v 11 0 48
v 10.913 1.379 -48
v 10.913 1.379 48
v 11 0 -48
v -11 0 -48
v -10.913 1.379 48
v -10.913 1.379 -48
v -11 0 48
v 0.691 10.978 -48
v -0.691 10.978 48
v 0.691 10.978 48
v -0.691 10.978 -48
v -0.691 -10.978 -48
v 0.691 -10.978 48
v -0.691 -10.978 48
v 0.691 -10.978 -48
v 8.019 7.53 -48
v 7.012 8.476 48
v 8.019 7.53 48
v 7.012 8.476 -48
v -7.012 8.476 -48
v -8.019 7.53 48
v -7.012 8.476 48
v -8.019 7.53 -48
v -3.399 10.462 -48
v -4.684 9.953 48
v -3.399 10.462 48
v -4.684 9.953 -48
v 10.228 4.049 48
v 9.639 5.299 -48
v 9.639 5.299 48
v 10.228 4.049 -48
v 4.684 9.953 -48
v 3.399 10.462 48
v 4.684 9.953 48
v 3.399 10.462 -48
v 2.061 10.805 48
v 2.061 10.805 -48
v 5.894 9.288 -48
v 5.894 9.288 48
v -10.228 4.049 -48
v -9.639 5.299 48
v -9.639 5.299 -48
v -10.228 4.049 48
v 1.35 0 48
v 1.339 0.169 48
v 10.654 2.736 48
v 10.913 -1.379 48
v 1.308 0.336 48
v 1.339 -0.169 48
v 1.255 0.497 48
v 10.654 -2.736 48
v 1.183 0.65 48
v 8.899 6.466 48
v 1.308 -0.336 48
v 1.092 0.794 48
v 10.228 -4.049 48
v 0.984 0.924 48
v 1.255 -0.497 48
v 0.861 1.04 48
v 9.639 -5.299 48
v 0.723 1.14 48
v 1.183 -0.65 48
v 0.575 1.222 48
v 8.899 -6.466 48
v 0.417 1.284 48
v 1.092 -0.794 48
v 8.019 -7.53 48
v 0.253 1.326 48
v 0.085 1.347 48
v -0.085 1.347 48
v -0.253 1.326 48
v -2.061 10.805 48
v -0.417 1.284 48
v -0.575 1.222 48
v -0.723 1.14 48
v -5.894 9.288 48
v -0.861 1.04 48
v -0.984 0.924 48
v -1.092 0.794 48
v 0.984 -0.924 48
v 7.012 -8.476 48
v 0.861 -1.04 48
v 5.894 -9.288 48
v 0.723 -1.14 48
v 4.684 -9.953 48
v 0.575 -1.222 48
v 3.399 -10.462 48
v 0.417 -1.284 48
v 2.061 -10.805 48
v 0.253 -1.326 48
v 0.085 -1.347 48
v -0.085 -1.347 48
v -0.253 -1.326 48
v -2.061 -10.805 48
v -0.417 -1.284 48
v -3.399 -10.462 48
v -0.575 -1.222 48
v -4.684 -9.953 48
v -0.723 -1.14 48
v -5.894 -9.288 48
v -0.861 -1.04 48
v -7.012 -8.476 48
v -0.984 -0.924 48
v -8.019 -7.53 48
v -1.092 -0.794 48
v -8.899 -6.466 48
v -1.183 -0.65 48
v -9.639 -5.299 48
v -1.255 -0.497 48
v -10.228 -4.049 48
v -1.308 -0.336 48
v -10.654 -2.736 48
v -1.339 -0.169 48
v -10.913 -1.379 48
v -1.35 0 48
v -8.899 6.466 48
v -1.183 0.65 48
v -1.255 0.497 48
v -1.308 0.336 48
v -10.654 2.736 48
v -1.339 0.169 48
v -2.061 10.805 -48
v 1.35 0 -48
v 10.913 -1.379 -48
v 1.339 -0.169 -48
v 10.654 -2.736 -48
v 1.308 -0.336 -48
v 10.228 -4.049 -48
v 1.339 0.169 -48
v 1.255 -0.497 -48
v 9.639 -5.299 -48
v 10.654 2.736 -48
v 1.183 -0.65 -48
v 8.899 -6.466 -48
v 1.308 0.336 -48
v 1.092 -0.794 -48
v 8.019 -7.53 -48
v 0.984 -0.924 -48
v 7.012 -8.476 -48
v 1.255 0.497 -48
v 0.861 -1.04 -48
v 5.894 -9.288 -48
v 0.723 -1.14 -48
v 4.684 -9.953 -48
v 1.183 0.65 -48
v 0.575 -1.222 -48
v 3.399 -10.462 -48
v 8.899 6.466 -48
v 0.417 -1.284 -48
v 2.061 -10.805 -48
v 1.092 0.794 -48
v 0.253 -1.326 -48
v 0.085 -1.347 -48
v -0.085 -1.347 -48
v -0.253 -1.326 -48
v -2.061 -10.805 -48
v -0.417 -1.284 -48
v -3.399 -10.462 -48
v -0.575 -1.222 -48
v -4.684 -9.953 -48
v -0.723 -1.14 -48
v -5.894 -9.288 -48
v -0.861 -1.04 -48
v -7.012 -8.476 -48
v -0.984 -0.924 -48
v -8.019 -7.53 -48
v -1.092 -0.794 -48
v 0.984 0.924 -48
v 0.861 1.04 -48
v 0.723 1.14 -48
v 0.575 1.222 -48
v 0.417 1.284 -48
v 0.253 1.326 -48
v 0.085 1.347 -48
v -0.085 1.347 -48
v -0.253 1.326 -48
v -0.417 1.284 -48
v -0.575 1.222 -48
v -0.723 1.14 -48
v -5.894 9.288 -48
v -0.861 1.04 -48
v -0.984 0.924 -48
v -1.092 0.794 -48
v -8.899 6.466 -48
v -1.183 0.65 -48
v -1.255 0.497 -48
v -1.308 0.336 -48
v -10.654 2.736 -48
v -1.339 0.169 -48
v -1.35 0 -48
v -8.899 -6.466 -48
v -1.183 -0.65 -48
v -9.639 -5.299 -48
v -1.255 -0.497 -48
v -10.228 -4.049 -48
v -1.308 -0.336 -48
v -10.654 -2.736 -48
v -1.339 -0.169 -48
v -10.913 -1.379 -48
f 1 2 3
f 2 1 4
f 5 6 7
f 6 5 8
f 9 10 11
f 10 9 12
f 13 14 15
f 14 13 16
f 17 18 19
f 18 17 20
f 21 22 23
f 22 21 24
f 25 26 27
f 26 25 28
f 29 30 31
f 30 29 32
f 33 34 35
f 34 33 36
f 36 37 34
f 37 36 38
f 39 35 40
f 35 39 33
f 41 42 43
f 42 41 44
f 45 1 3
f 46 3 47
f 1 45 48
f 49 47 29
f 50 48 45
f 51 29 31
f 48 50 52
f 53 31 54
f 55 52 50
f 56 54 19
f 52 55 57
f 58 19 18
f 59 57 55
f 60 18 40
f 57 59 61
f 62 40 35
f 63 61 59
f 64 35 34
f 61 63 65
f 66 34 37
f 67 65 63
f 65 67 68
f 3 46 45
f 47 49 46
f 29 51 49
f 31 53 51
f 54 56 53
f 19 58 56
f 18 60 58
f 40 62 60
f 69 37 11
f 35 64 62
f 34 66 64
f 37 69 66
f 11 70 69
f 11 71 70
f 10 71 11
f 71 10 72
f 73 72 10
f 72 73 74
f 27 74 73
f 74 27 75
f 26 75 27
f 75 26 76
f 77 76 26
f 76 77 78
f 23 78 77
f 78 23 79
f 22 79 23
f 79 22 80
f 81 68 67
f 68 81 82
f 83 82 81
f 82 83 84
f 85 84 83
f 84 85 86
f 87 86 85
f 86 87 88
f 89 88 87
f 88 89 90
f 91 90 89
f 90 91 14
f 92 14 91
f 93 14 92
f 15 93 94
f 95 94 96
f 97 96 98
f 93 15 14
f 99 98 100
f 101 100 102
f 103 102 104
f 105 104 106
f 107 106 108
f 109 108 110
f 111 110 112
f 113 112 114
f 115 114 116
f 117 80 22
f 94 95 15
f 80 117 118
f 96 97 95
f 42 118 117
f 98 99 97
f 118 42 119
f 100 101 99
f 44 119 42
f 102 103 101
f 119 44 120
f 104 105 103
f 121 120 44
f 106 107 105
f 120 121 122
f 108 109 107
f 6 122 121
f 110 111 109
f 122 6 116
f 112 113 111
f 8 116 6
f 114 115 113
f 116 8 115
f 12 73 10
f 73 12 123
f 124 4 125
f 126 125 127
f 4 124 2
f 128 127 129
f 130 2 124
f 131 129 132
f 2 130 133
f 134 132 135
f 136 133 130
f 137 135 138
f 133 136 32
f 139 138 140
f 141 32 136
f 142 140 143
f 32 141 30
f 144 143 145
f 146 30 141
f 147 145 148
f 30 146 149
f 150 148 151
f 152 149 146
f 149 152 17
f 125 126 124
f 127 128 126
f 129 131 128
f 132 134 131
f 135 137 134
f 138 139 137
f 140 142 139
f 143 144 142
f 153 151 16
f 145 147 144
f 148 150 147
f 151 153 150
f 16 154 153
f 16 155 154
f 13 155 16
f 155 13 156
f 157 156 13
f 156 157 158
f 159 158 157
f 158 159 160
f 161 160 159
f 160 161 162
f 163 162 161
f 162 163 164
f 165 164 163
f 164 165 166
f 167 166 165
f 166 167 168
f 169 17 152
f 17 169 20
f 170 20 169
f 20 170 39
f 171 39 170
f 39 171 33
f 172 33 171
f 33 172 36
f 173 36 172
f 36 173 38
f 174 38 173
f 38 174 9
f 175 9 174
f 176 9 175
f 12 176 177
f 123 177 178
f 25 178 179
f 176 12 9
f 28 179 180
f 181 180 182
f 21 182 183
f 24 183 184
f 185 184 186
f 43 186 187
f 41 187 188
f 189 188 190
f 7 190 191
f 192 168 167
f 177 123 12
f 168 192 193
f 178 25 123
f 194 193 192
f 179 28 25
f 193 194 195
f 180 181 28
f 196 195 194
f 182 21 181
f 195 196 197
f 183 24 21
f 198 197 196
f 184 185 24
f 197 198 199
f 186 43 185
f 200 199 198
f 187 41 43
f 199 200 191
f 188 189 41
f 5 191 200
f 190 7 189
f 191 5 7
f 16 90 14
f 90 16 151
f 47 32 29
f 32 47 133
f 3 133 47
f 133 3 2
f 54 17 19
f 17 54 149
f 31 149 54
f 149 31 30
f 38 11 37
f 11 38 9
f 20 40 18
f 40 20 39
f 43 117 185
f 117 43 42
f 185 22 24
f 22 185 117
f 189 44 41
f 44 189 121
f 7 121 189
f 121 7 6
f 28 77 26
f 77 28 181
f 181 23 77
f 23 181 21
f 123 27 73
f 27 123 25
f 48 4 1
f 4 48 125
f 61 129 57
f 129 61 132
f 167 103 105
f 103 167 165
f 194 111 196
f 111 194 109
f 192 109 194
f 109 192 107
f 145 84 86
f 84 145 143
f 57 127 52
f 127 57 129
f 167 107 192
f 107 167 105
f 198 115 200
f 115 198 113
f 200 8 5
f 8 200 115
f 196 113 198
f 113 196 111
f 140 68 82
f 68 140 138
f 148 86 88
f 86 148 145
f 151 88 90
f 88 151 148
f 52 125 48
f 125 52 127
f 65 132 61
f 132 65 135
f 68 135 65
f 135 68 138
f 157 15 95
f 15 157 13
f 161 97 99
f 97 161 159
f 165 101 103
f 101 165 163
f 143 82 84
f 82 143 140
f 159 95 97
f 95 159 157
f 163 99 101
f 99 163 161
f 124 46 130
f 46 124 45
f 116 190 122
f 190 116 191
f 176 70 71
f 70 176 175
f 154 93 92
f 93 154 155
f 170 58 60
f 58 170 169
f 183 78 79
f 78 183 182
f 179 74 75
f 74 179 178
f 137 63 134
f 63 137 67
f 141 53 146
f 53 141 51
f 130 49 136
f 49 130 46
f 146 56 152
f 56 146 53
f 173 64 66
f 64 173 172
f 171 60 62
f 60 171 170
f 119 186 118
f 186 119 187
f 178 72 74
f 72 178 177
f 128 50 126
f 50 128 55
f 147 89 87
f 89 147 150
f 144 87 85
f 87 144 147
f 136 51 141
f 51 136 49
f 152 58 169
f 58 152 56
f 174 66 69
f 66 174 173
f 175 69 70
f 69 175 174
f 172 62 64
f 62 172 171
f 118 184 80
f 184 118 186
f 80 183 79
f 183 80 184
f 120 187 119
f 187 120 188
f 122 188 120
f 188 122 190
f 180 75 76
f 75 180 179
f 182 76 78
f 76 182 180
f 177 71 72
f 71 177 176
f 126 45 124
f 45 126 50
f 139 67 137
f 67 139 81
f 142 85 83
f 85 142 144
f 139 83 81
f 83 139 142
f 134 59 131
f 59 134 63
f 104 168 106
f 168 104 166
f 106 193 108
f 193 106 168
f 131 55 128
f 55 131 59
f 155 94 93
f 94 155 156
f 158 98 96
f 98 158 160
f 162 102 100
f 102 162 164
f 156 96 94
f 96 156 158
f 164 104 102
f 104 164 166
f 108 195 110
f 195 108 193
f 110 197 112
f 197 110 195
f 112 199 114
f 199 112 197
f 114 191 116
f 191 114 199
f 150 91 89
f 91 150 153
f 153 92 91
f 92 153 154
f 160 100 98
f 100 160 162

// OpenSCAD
$fn = 50;


difference() {
	union() {
		translate(v = [0, 0, -48.0000000000]) {
			cylinder(h = 96, r = 11.0000000000);
		}
	}
	union() {
		translate(v = [0, 0, -100.0000000000]) {
			cylinder(h = 200, r = 1.3500000000);
		}
	}
}
